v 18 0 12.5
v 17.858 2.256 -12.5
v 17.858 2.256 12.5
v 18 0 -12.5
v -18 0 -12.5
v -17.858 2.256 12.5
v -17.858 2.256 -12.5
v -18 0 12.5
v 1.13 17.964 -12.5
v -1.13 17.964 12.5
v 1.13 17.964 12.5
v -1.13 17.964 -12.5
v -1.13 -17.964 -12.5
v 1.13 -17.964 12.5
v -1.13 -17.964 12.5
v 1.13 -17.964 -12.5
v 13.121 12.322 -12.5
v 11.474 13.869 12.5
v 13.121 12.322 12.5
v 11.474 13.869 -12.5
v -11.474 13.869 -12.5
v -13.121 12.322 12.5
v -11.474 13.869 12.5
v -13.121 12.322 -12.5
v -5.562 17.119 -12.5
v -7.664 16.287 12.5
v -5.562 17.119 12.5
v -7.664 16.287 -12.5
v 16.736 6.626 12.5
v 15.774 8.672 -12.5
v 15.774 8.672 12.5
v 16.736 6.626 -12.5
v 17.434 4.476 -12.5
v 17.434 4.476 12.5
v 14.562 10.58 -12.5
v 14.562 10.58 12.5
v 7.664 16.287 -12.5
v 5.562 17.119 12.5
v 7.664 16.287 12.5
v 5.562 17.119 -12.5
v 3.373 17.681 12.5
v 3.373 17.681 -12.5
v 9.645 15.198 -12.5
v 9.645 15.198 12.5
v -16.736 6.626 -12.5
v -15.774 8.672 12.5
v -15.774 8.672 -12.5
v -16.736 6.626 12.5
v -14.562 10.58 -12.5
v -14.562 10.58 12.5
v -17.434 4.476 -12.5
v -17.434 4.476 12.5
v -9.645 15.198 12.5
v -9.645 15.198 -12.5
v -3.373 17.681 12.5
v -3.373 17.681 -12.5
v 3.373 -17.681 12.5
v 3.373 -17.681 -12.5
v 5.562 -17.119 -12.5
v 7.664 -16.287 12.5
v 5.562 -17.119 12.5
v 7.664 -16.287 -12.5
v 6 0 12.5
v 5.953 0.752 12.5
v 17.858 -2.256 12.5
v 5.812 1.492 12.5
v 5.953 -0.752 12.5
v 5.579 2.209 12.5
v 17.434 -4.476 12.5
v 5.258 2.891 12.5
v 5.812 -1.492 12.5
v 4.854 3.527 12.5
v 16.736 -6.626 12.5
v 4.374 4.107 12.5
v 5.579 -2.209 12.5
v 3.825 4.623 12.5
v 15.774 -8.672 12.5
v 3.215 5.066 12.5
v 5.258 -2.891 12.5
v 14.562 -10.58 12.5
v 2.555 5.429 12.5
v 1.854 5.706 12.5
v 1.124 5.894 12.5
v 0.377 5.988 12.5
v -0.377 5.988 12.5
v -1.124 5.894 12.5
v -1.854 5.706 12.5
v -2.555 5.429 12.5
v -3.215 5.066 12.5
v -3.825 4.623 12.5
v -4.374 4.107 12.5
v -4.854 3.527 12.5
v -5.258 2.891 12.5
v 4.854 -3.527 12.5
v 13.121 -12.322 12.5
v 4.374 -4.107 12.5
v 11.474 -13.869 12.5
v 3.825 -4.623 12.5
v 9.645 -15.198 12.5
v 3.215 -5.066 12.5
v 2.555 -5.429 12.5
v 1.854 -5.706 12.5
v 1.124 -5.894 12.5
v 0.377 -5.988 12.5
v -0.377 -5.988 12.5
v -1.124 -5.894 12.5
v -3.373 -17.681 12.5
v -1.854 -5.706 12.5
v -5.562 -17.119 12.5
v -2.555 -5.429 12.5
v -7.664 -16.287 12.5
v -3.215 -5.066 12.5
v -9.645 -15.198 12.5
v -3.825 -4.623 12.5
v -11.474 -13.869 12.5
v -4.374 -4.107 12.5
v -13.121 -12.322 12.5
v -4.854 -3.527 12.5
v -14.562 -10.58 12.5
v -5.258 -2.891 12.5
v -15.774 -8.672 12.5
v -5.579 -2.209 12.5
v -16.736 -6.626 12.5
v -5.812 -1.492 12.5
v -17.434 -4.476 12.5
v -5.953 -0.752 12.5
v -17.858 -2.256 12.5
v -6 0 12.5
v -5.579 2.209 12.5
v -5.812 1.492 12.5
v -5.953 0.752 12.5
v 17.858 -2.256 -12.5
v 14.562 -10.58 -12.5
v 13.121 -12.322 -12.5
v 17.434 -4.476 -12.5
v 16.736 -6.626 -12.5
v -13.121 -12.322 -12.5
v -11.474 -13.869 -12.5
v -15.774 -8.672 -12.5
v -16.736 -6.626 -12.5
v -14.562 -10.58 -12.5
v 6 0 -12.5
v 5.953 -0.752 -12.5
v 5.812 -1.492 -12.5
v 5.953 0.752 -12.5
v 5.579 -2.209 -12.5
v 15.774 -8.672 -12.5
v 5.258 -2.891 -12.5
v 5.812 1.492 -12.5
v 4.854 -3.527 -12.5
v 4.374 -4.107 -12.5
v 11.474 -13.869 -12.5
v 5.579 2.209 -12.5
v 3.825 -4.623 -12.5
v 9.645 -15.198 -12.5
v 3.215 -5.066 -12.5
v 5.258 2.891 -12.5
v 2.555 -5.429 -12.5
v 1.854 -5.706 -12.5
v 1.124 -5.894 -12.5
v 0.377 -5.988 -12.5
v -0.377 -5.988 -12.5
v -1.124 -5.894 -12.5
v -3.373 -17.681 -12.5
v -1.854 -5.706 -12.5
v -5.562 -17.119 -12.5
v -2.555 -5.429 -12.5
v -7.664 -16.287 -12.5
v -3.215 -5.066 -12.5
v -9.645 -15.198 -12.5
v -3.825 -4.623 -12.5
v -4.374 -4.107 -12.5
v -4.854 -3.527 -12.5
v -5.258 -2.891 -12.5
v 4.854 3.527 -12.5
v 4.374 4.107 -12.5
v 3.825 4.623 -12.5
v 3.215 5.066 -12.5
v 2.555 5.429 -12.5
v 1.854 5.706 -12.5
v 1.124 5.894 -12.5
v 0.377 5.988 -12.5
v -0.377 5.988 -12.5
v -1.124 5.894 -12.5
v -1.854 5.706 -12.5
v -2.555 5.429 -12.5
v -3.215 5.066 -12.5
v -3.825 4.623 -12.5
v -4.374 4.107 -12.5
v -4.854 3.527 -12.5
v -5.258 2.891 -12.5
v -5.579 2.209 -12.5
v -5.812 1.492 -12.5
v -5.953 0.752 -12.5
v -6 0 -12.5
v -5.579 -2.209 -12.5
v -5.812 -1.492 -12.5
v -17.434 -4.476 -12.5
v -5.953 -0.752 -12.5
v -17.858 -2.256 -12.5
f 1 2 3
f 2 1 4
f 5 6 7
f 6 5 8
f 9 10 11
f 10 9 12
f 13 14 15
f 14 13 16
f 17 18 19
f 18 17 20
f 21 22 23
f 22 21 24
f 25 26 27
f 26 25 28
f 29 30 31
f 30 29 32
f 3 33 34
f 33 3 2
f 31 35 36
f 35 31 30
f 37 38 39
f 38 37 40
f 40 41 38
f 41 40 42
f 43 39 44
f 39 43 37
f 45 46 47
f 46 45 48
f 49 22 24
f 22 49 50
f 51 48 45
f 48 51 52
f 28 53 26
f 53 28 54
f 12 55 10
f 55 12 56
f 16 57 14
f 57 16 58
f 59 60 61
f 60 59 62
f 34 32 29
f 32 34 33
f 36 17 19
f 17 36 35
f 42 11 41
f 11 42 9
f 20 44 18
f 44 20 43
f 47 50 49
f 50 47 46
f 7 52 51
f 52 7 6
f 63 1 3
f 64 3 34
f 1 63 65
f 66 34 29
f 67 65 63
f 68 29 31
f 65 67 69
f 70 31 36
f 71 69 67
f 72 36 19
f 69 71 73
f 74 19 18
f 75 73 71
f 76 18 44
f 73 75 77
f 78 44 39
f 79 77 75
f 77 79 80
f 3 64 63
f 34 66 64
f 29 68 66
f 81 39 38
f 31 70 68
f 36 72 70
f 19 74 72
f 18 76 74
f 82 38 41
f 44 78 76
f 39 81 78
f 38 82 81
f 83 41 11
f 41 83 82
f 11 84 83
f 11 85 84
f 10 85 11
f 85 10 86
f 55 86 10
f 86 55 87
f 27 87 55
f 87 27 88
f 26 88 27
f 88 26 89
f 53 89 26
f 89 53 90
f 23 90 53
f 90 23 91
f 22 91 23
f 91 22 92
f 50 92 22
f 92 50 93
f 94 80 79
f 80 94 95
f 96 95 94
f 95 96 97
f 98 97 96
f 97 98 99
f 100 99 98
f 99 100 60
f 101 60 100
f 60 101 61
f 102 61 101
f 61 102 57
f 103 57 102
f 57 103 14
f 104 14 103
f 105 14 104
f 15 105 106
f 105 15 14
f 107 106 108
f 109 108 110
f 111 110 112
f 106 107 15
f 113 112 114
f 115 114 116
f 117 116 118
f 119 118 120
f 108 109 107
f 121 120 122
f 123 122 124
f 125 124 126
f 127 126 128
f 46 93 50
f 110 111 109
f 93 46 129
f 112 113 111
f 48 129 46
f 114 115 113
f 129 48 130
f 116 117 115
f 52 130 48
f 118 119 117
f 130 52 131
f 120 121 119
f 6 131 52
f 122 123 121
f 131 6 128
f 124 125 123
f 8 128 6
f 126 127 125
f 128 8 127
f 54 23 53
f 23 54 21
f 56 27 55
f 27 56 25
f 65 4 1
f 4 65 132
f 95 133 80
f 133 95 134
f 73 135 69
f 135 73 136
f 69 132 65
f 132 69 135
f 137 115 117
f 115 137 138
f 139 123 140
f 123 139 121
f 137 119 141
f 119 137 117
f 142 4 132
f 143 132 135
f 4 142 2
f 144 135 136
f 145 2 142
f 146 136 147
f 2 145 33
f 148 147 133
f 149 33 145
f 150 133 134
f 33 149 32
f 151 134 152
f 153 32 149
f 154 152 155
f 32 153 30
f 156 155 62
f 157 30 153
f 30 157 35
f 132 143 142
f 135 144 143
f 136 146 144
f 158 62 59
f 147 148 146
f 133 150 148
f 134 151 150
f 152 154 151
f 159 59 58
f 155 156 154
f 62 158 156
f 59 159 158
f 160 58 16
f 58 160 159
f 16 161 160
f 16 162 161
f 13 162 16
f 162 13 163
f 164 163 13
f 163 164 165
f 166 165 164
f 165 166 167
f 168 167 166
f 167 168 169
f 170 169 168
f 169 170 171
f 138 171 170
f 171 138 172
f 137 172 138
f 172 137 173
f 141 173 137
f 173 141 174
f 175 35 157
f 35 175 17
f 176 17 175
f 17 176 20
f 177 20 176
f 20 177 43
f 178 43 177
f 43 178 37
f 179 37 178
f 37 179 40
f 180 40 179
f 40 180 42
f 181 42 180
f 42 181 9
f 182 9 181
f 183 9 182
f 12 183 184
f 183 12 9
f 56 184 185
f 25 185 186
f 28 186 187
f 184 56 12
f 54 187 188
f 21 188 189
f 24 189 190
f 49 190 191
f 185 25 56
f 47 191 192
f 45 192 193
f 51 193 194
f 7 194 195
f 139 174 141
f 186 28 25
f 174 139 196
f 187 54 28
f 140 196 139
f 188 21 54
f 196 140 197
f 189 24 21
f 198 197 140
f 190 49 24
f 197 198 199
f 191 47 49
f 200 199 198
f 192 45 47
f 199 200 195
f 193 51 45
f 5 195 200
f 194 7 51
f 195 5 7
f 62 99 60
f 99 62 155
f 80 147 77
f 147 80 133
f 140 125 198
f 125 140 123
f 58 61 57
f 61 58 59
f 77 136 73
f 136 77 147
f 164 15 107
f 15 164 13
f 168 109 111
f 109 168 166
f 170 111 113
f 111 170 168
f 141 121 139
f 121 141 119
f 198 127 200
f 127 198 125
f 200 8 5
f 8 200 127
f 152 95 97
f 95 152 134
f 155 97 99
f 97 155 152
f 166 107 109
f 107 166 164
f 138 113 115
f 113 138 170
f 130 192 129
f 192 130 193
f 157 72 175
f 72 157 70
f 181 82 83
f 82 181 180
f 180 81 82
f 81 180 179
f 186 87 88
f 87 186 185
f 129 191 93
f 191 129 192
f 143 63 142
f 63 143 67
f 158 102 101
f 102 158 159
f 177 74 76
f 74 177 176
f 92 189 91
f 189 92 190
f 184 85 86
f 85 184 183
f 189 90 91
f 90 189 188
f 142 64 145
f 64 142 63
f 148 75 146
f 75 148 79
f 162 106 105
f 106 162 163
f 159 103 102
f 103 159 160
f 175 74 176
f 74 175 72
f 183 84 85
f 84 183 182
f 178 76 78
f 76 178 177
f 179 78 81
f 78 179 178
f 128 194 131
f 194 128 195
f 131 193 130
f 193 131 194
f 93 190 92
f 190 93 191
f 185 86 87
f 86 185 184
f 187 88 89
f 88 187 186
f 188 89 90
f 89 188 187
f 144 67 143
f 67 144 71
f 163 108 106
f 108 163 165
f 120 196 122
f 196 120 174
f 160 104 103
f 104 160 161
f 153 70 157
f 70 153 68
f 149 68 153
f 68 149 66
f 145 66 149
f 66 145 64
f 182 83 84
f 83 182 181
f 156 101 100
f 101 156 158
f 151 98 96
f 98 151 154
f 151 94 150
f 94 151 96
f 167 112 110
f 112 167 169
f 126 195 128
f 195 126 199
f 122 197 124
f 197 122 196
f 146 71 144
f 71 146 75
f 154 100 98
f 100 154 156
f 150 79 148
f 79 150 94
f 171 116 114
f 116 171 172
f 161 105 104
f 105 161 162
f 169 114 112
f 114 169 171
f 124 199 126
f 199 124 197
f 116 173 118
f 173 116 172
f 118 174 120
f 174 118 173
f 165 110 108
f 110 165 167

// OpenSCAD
$fn = 50;


difference() {
	union() {
		translate(v = [0, 0, -12.5000000000]) {
			cylinder(h = 25, r = 18.0000000000);
		}
	}
	union() {
		translate(v = [0, 0, -100.0000000000]) {
			cylinder(h = 200, r = 6);
		}
	}
}
